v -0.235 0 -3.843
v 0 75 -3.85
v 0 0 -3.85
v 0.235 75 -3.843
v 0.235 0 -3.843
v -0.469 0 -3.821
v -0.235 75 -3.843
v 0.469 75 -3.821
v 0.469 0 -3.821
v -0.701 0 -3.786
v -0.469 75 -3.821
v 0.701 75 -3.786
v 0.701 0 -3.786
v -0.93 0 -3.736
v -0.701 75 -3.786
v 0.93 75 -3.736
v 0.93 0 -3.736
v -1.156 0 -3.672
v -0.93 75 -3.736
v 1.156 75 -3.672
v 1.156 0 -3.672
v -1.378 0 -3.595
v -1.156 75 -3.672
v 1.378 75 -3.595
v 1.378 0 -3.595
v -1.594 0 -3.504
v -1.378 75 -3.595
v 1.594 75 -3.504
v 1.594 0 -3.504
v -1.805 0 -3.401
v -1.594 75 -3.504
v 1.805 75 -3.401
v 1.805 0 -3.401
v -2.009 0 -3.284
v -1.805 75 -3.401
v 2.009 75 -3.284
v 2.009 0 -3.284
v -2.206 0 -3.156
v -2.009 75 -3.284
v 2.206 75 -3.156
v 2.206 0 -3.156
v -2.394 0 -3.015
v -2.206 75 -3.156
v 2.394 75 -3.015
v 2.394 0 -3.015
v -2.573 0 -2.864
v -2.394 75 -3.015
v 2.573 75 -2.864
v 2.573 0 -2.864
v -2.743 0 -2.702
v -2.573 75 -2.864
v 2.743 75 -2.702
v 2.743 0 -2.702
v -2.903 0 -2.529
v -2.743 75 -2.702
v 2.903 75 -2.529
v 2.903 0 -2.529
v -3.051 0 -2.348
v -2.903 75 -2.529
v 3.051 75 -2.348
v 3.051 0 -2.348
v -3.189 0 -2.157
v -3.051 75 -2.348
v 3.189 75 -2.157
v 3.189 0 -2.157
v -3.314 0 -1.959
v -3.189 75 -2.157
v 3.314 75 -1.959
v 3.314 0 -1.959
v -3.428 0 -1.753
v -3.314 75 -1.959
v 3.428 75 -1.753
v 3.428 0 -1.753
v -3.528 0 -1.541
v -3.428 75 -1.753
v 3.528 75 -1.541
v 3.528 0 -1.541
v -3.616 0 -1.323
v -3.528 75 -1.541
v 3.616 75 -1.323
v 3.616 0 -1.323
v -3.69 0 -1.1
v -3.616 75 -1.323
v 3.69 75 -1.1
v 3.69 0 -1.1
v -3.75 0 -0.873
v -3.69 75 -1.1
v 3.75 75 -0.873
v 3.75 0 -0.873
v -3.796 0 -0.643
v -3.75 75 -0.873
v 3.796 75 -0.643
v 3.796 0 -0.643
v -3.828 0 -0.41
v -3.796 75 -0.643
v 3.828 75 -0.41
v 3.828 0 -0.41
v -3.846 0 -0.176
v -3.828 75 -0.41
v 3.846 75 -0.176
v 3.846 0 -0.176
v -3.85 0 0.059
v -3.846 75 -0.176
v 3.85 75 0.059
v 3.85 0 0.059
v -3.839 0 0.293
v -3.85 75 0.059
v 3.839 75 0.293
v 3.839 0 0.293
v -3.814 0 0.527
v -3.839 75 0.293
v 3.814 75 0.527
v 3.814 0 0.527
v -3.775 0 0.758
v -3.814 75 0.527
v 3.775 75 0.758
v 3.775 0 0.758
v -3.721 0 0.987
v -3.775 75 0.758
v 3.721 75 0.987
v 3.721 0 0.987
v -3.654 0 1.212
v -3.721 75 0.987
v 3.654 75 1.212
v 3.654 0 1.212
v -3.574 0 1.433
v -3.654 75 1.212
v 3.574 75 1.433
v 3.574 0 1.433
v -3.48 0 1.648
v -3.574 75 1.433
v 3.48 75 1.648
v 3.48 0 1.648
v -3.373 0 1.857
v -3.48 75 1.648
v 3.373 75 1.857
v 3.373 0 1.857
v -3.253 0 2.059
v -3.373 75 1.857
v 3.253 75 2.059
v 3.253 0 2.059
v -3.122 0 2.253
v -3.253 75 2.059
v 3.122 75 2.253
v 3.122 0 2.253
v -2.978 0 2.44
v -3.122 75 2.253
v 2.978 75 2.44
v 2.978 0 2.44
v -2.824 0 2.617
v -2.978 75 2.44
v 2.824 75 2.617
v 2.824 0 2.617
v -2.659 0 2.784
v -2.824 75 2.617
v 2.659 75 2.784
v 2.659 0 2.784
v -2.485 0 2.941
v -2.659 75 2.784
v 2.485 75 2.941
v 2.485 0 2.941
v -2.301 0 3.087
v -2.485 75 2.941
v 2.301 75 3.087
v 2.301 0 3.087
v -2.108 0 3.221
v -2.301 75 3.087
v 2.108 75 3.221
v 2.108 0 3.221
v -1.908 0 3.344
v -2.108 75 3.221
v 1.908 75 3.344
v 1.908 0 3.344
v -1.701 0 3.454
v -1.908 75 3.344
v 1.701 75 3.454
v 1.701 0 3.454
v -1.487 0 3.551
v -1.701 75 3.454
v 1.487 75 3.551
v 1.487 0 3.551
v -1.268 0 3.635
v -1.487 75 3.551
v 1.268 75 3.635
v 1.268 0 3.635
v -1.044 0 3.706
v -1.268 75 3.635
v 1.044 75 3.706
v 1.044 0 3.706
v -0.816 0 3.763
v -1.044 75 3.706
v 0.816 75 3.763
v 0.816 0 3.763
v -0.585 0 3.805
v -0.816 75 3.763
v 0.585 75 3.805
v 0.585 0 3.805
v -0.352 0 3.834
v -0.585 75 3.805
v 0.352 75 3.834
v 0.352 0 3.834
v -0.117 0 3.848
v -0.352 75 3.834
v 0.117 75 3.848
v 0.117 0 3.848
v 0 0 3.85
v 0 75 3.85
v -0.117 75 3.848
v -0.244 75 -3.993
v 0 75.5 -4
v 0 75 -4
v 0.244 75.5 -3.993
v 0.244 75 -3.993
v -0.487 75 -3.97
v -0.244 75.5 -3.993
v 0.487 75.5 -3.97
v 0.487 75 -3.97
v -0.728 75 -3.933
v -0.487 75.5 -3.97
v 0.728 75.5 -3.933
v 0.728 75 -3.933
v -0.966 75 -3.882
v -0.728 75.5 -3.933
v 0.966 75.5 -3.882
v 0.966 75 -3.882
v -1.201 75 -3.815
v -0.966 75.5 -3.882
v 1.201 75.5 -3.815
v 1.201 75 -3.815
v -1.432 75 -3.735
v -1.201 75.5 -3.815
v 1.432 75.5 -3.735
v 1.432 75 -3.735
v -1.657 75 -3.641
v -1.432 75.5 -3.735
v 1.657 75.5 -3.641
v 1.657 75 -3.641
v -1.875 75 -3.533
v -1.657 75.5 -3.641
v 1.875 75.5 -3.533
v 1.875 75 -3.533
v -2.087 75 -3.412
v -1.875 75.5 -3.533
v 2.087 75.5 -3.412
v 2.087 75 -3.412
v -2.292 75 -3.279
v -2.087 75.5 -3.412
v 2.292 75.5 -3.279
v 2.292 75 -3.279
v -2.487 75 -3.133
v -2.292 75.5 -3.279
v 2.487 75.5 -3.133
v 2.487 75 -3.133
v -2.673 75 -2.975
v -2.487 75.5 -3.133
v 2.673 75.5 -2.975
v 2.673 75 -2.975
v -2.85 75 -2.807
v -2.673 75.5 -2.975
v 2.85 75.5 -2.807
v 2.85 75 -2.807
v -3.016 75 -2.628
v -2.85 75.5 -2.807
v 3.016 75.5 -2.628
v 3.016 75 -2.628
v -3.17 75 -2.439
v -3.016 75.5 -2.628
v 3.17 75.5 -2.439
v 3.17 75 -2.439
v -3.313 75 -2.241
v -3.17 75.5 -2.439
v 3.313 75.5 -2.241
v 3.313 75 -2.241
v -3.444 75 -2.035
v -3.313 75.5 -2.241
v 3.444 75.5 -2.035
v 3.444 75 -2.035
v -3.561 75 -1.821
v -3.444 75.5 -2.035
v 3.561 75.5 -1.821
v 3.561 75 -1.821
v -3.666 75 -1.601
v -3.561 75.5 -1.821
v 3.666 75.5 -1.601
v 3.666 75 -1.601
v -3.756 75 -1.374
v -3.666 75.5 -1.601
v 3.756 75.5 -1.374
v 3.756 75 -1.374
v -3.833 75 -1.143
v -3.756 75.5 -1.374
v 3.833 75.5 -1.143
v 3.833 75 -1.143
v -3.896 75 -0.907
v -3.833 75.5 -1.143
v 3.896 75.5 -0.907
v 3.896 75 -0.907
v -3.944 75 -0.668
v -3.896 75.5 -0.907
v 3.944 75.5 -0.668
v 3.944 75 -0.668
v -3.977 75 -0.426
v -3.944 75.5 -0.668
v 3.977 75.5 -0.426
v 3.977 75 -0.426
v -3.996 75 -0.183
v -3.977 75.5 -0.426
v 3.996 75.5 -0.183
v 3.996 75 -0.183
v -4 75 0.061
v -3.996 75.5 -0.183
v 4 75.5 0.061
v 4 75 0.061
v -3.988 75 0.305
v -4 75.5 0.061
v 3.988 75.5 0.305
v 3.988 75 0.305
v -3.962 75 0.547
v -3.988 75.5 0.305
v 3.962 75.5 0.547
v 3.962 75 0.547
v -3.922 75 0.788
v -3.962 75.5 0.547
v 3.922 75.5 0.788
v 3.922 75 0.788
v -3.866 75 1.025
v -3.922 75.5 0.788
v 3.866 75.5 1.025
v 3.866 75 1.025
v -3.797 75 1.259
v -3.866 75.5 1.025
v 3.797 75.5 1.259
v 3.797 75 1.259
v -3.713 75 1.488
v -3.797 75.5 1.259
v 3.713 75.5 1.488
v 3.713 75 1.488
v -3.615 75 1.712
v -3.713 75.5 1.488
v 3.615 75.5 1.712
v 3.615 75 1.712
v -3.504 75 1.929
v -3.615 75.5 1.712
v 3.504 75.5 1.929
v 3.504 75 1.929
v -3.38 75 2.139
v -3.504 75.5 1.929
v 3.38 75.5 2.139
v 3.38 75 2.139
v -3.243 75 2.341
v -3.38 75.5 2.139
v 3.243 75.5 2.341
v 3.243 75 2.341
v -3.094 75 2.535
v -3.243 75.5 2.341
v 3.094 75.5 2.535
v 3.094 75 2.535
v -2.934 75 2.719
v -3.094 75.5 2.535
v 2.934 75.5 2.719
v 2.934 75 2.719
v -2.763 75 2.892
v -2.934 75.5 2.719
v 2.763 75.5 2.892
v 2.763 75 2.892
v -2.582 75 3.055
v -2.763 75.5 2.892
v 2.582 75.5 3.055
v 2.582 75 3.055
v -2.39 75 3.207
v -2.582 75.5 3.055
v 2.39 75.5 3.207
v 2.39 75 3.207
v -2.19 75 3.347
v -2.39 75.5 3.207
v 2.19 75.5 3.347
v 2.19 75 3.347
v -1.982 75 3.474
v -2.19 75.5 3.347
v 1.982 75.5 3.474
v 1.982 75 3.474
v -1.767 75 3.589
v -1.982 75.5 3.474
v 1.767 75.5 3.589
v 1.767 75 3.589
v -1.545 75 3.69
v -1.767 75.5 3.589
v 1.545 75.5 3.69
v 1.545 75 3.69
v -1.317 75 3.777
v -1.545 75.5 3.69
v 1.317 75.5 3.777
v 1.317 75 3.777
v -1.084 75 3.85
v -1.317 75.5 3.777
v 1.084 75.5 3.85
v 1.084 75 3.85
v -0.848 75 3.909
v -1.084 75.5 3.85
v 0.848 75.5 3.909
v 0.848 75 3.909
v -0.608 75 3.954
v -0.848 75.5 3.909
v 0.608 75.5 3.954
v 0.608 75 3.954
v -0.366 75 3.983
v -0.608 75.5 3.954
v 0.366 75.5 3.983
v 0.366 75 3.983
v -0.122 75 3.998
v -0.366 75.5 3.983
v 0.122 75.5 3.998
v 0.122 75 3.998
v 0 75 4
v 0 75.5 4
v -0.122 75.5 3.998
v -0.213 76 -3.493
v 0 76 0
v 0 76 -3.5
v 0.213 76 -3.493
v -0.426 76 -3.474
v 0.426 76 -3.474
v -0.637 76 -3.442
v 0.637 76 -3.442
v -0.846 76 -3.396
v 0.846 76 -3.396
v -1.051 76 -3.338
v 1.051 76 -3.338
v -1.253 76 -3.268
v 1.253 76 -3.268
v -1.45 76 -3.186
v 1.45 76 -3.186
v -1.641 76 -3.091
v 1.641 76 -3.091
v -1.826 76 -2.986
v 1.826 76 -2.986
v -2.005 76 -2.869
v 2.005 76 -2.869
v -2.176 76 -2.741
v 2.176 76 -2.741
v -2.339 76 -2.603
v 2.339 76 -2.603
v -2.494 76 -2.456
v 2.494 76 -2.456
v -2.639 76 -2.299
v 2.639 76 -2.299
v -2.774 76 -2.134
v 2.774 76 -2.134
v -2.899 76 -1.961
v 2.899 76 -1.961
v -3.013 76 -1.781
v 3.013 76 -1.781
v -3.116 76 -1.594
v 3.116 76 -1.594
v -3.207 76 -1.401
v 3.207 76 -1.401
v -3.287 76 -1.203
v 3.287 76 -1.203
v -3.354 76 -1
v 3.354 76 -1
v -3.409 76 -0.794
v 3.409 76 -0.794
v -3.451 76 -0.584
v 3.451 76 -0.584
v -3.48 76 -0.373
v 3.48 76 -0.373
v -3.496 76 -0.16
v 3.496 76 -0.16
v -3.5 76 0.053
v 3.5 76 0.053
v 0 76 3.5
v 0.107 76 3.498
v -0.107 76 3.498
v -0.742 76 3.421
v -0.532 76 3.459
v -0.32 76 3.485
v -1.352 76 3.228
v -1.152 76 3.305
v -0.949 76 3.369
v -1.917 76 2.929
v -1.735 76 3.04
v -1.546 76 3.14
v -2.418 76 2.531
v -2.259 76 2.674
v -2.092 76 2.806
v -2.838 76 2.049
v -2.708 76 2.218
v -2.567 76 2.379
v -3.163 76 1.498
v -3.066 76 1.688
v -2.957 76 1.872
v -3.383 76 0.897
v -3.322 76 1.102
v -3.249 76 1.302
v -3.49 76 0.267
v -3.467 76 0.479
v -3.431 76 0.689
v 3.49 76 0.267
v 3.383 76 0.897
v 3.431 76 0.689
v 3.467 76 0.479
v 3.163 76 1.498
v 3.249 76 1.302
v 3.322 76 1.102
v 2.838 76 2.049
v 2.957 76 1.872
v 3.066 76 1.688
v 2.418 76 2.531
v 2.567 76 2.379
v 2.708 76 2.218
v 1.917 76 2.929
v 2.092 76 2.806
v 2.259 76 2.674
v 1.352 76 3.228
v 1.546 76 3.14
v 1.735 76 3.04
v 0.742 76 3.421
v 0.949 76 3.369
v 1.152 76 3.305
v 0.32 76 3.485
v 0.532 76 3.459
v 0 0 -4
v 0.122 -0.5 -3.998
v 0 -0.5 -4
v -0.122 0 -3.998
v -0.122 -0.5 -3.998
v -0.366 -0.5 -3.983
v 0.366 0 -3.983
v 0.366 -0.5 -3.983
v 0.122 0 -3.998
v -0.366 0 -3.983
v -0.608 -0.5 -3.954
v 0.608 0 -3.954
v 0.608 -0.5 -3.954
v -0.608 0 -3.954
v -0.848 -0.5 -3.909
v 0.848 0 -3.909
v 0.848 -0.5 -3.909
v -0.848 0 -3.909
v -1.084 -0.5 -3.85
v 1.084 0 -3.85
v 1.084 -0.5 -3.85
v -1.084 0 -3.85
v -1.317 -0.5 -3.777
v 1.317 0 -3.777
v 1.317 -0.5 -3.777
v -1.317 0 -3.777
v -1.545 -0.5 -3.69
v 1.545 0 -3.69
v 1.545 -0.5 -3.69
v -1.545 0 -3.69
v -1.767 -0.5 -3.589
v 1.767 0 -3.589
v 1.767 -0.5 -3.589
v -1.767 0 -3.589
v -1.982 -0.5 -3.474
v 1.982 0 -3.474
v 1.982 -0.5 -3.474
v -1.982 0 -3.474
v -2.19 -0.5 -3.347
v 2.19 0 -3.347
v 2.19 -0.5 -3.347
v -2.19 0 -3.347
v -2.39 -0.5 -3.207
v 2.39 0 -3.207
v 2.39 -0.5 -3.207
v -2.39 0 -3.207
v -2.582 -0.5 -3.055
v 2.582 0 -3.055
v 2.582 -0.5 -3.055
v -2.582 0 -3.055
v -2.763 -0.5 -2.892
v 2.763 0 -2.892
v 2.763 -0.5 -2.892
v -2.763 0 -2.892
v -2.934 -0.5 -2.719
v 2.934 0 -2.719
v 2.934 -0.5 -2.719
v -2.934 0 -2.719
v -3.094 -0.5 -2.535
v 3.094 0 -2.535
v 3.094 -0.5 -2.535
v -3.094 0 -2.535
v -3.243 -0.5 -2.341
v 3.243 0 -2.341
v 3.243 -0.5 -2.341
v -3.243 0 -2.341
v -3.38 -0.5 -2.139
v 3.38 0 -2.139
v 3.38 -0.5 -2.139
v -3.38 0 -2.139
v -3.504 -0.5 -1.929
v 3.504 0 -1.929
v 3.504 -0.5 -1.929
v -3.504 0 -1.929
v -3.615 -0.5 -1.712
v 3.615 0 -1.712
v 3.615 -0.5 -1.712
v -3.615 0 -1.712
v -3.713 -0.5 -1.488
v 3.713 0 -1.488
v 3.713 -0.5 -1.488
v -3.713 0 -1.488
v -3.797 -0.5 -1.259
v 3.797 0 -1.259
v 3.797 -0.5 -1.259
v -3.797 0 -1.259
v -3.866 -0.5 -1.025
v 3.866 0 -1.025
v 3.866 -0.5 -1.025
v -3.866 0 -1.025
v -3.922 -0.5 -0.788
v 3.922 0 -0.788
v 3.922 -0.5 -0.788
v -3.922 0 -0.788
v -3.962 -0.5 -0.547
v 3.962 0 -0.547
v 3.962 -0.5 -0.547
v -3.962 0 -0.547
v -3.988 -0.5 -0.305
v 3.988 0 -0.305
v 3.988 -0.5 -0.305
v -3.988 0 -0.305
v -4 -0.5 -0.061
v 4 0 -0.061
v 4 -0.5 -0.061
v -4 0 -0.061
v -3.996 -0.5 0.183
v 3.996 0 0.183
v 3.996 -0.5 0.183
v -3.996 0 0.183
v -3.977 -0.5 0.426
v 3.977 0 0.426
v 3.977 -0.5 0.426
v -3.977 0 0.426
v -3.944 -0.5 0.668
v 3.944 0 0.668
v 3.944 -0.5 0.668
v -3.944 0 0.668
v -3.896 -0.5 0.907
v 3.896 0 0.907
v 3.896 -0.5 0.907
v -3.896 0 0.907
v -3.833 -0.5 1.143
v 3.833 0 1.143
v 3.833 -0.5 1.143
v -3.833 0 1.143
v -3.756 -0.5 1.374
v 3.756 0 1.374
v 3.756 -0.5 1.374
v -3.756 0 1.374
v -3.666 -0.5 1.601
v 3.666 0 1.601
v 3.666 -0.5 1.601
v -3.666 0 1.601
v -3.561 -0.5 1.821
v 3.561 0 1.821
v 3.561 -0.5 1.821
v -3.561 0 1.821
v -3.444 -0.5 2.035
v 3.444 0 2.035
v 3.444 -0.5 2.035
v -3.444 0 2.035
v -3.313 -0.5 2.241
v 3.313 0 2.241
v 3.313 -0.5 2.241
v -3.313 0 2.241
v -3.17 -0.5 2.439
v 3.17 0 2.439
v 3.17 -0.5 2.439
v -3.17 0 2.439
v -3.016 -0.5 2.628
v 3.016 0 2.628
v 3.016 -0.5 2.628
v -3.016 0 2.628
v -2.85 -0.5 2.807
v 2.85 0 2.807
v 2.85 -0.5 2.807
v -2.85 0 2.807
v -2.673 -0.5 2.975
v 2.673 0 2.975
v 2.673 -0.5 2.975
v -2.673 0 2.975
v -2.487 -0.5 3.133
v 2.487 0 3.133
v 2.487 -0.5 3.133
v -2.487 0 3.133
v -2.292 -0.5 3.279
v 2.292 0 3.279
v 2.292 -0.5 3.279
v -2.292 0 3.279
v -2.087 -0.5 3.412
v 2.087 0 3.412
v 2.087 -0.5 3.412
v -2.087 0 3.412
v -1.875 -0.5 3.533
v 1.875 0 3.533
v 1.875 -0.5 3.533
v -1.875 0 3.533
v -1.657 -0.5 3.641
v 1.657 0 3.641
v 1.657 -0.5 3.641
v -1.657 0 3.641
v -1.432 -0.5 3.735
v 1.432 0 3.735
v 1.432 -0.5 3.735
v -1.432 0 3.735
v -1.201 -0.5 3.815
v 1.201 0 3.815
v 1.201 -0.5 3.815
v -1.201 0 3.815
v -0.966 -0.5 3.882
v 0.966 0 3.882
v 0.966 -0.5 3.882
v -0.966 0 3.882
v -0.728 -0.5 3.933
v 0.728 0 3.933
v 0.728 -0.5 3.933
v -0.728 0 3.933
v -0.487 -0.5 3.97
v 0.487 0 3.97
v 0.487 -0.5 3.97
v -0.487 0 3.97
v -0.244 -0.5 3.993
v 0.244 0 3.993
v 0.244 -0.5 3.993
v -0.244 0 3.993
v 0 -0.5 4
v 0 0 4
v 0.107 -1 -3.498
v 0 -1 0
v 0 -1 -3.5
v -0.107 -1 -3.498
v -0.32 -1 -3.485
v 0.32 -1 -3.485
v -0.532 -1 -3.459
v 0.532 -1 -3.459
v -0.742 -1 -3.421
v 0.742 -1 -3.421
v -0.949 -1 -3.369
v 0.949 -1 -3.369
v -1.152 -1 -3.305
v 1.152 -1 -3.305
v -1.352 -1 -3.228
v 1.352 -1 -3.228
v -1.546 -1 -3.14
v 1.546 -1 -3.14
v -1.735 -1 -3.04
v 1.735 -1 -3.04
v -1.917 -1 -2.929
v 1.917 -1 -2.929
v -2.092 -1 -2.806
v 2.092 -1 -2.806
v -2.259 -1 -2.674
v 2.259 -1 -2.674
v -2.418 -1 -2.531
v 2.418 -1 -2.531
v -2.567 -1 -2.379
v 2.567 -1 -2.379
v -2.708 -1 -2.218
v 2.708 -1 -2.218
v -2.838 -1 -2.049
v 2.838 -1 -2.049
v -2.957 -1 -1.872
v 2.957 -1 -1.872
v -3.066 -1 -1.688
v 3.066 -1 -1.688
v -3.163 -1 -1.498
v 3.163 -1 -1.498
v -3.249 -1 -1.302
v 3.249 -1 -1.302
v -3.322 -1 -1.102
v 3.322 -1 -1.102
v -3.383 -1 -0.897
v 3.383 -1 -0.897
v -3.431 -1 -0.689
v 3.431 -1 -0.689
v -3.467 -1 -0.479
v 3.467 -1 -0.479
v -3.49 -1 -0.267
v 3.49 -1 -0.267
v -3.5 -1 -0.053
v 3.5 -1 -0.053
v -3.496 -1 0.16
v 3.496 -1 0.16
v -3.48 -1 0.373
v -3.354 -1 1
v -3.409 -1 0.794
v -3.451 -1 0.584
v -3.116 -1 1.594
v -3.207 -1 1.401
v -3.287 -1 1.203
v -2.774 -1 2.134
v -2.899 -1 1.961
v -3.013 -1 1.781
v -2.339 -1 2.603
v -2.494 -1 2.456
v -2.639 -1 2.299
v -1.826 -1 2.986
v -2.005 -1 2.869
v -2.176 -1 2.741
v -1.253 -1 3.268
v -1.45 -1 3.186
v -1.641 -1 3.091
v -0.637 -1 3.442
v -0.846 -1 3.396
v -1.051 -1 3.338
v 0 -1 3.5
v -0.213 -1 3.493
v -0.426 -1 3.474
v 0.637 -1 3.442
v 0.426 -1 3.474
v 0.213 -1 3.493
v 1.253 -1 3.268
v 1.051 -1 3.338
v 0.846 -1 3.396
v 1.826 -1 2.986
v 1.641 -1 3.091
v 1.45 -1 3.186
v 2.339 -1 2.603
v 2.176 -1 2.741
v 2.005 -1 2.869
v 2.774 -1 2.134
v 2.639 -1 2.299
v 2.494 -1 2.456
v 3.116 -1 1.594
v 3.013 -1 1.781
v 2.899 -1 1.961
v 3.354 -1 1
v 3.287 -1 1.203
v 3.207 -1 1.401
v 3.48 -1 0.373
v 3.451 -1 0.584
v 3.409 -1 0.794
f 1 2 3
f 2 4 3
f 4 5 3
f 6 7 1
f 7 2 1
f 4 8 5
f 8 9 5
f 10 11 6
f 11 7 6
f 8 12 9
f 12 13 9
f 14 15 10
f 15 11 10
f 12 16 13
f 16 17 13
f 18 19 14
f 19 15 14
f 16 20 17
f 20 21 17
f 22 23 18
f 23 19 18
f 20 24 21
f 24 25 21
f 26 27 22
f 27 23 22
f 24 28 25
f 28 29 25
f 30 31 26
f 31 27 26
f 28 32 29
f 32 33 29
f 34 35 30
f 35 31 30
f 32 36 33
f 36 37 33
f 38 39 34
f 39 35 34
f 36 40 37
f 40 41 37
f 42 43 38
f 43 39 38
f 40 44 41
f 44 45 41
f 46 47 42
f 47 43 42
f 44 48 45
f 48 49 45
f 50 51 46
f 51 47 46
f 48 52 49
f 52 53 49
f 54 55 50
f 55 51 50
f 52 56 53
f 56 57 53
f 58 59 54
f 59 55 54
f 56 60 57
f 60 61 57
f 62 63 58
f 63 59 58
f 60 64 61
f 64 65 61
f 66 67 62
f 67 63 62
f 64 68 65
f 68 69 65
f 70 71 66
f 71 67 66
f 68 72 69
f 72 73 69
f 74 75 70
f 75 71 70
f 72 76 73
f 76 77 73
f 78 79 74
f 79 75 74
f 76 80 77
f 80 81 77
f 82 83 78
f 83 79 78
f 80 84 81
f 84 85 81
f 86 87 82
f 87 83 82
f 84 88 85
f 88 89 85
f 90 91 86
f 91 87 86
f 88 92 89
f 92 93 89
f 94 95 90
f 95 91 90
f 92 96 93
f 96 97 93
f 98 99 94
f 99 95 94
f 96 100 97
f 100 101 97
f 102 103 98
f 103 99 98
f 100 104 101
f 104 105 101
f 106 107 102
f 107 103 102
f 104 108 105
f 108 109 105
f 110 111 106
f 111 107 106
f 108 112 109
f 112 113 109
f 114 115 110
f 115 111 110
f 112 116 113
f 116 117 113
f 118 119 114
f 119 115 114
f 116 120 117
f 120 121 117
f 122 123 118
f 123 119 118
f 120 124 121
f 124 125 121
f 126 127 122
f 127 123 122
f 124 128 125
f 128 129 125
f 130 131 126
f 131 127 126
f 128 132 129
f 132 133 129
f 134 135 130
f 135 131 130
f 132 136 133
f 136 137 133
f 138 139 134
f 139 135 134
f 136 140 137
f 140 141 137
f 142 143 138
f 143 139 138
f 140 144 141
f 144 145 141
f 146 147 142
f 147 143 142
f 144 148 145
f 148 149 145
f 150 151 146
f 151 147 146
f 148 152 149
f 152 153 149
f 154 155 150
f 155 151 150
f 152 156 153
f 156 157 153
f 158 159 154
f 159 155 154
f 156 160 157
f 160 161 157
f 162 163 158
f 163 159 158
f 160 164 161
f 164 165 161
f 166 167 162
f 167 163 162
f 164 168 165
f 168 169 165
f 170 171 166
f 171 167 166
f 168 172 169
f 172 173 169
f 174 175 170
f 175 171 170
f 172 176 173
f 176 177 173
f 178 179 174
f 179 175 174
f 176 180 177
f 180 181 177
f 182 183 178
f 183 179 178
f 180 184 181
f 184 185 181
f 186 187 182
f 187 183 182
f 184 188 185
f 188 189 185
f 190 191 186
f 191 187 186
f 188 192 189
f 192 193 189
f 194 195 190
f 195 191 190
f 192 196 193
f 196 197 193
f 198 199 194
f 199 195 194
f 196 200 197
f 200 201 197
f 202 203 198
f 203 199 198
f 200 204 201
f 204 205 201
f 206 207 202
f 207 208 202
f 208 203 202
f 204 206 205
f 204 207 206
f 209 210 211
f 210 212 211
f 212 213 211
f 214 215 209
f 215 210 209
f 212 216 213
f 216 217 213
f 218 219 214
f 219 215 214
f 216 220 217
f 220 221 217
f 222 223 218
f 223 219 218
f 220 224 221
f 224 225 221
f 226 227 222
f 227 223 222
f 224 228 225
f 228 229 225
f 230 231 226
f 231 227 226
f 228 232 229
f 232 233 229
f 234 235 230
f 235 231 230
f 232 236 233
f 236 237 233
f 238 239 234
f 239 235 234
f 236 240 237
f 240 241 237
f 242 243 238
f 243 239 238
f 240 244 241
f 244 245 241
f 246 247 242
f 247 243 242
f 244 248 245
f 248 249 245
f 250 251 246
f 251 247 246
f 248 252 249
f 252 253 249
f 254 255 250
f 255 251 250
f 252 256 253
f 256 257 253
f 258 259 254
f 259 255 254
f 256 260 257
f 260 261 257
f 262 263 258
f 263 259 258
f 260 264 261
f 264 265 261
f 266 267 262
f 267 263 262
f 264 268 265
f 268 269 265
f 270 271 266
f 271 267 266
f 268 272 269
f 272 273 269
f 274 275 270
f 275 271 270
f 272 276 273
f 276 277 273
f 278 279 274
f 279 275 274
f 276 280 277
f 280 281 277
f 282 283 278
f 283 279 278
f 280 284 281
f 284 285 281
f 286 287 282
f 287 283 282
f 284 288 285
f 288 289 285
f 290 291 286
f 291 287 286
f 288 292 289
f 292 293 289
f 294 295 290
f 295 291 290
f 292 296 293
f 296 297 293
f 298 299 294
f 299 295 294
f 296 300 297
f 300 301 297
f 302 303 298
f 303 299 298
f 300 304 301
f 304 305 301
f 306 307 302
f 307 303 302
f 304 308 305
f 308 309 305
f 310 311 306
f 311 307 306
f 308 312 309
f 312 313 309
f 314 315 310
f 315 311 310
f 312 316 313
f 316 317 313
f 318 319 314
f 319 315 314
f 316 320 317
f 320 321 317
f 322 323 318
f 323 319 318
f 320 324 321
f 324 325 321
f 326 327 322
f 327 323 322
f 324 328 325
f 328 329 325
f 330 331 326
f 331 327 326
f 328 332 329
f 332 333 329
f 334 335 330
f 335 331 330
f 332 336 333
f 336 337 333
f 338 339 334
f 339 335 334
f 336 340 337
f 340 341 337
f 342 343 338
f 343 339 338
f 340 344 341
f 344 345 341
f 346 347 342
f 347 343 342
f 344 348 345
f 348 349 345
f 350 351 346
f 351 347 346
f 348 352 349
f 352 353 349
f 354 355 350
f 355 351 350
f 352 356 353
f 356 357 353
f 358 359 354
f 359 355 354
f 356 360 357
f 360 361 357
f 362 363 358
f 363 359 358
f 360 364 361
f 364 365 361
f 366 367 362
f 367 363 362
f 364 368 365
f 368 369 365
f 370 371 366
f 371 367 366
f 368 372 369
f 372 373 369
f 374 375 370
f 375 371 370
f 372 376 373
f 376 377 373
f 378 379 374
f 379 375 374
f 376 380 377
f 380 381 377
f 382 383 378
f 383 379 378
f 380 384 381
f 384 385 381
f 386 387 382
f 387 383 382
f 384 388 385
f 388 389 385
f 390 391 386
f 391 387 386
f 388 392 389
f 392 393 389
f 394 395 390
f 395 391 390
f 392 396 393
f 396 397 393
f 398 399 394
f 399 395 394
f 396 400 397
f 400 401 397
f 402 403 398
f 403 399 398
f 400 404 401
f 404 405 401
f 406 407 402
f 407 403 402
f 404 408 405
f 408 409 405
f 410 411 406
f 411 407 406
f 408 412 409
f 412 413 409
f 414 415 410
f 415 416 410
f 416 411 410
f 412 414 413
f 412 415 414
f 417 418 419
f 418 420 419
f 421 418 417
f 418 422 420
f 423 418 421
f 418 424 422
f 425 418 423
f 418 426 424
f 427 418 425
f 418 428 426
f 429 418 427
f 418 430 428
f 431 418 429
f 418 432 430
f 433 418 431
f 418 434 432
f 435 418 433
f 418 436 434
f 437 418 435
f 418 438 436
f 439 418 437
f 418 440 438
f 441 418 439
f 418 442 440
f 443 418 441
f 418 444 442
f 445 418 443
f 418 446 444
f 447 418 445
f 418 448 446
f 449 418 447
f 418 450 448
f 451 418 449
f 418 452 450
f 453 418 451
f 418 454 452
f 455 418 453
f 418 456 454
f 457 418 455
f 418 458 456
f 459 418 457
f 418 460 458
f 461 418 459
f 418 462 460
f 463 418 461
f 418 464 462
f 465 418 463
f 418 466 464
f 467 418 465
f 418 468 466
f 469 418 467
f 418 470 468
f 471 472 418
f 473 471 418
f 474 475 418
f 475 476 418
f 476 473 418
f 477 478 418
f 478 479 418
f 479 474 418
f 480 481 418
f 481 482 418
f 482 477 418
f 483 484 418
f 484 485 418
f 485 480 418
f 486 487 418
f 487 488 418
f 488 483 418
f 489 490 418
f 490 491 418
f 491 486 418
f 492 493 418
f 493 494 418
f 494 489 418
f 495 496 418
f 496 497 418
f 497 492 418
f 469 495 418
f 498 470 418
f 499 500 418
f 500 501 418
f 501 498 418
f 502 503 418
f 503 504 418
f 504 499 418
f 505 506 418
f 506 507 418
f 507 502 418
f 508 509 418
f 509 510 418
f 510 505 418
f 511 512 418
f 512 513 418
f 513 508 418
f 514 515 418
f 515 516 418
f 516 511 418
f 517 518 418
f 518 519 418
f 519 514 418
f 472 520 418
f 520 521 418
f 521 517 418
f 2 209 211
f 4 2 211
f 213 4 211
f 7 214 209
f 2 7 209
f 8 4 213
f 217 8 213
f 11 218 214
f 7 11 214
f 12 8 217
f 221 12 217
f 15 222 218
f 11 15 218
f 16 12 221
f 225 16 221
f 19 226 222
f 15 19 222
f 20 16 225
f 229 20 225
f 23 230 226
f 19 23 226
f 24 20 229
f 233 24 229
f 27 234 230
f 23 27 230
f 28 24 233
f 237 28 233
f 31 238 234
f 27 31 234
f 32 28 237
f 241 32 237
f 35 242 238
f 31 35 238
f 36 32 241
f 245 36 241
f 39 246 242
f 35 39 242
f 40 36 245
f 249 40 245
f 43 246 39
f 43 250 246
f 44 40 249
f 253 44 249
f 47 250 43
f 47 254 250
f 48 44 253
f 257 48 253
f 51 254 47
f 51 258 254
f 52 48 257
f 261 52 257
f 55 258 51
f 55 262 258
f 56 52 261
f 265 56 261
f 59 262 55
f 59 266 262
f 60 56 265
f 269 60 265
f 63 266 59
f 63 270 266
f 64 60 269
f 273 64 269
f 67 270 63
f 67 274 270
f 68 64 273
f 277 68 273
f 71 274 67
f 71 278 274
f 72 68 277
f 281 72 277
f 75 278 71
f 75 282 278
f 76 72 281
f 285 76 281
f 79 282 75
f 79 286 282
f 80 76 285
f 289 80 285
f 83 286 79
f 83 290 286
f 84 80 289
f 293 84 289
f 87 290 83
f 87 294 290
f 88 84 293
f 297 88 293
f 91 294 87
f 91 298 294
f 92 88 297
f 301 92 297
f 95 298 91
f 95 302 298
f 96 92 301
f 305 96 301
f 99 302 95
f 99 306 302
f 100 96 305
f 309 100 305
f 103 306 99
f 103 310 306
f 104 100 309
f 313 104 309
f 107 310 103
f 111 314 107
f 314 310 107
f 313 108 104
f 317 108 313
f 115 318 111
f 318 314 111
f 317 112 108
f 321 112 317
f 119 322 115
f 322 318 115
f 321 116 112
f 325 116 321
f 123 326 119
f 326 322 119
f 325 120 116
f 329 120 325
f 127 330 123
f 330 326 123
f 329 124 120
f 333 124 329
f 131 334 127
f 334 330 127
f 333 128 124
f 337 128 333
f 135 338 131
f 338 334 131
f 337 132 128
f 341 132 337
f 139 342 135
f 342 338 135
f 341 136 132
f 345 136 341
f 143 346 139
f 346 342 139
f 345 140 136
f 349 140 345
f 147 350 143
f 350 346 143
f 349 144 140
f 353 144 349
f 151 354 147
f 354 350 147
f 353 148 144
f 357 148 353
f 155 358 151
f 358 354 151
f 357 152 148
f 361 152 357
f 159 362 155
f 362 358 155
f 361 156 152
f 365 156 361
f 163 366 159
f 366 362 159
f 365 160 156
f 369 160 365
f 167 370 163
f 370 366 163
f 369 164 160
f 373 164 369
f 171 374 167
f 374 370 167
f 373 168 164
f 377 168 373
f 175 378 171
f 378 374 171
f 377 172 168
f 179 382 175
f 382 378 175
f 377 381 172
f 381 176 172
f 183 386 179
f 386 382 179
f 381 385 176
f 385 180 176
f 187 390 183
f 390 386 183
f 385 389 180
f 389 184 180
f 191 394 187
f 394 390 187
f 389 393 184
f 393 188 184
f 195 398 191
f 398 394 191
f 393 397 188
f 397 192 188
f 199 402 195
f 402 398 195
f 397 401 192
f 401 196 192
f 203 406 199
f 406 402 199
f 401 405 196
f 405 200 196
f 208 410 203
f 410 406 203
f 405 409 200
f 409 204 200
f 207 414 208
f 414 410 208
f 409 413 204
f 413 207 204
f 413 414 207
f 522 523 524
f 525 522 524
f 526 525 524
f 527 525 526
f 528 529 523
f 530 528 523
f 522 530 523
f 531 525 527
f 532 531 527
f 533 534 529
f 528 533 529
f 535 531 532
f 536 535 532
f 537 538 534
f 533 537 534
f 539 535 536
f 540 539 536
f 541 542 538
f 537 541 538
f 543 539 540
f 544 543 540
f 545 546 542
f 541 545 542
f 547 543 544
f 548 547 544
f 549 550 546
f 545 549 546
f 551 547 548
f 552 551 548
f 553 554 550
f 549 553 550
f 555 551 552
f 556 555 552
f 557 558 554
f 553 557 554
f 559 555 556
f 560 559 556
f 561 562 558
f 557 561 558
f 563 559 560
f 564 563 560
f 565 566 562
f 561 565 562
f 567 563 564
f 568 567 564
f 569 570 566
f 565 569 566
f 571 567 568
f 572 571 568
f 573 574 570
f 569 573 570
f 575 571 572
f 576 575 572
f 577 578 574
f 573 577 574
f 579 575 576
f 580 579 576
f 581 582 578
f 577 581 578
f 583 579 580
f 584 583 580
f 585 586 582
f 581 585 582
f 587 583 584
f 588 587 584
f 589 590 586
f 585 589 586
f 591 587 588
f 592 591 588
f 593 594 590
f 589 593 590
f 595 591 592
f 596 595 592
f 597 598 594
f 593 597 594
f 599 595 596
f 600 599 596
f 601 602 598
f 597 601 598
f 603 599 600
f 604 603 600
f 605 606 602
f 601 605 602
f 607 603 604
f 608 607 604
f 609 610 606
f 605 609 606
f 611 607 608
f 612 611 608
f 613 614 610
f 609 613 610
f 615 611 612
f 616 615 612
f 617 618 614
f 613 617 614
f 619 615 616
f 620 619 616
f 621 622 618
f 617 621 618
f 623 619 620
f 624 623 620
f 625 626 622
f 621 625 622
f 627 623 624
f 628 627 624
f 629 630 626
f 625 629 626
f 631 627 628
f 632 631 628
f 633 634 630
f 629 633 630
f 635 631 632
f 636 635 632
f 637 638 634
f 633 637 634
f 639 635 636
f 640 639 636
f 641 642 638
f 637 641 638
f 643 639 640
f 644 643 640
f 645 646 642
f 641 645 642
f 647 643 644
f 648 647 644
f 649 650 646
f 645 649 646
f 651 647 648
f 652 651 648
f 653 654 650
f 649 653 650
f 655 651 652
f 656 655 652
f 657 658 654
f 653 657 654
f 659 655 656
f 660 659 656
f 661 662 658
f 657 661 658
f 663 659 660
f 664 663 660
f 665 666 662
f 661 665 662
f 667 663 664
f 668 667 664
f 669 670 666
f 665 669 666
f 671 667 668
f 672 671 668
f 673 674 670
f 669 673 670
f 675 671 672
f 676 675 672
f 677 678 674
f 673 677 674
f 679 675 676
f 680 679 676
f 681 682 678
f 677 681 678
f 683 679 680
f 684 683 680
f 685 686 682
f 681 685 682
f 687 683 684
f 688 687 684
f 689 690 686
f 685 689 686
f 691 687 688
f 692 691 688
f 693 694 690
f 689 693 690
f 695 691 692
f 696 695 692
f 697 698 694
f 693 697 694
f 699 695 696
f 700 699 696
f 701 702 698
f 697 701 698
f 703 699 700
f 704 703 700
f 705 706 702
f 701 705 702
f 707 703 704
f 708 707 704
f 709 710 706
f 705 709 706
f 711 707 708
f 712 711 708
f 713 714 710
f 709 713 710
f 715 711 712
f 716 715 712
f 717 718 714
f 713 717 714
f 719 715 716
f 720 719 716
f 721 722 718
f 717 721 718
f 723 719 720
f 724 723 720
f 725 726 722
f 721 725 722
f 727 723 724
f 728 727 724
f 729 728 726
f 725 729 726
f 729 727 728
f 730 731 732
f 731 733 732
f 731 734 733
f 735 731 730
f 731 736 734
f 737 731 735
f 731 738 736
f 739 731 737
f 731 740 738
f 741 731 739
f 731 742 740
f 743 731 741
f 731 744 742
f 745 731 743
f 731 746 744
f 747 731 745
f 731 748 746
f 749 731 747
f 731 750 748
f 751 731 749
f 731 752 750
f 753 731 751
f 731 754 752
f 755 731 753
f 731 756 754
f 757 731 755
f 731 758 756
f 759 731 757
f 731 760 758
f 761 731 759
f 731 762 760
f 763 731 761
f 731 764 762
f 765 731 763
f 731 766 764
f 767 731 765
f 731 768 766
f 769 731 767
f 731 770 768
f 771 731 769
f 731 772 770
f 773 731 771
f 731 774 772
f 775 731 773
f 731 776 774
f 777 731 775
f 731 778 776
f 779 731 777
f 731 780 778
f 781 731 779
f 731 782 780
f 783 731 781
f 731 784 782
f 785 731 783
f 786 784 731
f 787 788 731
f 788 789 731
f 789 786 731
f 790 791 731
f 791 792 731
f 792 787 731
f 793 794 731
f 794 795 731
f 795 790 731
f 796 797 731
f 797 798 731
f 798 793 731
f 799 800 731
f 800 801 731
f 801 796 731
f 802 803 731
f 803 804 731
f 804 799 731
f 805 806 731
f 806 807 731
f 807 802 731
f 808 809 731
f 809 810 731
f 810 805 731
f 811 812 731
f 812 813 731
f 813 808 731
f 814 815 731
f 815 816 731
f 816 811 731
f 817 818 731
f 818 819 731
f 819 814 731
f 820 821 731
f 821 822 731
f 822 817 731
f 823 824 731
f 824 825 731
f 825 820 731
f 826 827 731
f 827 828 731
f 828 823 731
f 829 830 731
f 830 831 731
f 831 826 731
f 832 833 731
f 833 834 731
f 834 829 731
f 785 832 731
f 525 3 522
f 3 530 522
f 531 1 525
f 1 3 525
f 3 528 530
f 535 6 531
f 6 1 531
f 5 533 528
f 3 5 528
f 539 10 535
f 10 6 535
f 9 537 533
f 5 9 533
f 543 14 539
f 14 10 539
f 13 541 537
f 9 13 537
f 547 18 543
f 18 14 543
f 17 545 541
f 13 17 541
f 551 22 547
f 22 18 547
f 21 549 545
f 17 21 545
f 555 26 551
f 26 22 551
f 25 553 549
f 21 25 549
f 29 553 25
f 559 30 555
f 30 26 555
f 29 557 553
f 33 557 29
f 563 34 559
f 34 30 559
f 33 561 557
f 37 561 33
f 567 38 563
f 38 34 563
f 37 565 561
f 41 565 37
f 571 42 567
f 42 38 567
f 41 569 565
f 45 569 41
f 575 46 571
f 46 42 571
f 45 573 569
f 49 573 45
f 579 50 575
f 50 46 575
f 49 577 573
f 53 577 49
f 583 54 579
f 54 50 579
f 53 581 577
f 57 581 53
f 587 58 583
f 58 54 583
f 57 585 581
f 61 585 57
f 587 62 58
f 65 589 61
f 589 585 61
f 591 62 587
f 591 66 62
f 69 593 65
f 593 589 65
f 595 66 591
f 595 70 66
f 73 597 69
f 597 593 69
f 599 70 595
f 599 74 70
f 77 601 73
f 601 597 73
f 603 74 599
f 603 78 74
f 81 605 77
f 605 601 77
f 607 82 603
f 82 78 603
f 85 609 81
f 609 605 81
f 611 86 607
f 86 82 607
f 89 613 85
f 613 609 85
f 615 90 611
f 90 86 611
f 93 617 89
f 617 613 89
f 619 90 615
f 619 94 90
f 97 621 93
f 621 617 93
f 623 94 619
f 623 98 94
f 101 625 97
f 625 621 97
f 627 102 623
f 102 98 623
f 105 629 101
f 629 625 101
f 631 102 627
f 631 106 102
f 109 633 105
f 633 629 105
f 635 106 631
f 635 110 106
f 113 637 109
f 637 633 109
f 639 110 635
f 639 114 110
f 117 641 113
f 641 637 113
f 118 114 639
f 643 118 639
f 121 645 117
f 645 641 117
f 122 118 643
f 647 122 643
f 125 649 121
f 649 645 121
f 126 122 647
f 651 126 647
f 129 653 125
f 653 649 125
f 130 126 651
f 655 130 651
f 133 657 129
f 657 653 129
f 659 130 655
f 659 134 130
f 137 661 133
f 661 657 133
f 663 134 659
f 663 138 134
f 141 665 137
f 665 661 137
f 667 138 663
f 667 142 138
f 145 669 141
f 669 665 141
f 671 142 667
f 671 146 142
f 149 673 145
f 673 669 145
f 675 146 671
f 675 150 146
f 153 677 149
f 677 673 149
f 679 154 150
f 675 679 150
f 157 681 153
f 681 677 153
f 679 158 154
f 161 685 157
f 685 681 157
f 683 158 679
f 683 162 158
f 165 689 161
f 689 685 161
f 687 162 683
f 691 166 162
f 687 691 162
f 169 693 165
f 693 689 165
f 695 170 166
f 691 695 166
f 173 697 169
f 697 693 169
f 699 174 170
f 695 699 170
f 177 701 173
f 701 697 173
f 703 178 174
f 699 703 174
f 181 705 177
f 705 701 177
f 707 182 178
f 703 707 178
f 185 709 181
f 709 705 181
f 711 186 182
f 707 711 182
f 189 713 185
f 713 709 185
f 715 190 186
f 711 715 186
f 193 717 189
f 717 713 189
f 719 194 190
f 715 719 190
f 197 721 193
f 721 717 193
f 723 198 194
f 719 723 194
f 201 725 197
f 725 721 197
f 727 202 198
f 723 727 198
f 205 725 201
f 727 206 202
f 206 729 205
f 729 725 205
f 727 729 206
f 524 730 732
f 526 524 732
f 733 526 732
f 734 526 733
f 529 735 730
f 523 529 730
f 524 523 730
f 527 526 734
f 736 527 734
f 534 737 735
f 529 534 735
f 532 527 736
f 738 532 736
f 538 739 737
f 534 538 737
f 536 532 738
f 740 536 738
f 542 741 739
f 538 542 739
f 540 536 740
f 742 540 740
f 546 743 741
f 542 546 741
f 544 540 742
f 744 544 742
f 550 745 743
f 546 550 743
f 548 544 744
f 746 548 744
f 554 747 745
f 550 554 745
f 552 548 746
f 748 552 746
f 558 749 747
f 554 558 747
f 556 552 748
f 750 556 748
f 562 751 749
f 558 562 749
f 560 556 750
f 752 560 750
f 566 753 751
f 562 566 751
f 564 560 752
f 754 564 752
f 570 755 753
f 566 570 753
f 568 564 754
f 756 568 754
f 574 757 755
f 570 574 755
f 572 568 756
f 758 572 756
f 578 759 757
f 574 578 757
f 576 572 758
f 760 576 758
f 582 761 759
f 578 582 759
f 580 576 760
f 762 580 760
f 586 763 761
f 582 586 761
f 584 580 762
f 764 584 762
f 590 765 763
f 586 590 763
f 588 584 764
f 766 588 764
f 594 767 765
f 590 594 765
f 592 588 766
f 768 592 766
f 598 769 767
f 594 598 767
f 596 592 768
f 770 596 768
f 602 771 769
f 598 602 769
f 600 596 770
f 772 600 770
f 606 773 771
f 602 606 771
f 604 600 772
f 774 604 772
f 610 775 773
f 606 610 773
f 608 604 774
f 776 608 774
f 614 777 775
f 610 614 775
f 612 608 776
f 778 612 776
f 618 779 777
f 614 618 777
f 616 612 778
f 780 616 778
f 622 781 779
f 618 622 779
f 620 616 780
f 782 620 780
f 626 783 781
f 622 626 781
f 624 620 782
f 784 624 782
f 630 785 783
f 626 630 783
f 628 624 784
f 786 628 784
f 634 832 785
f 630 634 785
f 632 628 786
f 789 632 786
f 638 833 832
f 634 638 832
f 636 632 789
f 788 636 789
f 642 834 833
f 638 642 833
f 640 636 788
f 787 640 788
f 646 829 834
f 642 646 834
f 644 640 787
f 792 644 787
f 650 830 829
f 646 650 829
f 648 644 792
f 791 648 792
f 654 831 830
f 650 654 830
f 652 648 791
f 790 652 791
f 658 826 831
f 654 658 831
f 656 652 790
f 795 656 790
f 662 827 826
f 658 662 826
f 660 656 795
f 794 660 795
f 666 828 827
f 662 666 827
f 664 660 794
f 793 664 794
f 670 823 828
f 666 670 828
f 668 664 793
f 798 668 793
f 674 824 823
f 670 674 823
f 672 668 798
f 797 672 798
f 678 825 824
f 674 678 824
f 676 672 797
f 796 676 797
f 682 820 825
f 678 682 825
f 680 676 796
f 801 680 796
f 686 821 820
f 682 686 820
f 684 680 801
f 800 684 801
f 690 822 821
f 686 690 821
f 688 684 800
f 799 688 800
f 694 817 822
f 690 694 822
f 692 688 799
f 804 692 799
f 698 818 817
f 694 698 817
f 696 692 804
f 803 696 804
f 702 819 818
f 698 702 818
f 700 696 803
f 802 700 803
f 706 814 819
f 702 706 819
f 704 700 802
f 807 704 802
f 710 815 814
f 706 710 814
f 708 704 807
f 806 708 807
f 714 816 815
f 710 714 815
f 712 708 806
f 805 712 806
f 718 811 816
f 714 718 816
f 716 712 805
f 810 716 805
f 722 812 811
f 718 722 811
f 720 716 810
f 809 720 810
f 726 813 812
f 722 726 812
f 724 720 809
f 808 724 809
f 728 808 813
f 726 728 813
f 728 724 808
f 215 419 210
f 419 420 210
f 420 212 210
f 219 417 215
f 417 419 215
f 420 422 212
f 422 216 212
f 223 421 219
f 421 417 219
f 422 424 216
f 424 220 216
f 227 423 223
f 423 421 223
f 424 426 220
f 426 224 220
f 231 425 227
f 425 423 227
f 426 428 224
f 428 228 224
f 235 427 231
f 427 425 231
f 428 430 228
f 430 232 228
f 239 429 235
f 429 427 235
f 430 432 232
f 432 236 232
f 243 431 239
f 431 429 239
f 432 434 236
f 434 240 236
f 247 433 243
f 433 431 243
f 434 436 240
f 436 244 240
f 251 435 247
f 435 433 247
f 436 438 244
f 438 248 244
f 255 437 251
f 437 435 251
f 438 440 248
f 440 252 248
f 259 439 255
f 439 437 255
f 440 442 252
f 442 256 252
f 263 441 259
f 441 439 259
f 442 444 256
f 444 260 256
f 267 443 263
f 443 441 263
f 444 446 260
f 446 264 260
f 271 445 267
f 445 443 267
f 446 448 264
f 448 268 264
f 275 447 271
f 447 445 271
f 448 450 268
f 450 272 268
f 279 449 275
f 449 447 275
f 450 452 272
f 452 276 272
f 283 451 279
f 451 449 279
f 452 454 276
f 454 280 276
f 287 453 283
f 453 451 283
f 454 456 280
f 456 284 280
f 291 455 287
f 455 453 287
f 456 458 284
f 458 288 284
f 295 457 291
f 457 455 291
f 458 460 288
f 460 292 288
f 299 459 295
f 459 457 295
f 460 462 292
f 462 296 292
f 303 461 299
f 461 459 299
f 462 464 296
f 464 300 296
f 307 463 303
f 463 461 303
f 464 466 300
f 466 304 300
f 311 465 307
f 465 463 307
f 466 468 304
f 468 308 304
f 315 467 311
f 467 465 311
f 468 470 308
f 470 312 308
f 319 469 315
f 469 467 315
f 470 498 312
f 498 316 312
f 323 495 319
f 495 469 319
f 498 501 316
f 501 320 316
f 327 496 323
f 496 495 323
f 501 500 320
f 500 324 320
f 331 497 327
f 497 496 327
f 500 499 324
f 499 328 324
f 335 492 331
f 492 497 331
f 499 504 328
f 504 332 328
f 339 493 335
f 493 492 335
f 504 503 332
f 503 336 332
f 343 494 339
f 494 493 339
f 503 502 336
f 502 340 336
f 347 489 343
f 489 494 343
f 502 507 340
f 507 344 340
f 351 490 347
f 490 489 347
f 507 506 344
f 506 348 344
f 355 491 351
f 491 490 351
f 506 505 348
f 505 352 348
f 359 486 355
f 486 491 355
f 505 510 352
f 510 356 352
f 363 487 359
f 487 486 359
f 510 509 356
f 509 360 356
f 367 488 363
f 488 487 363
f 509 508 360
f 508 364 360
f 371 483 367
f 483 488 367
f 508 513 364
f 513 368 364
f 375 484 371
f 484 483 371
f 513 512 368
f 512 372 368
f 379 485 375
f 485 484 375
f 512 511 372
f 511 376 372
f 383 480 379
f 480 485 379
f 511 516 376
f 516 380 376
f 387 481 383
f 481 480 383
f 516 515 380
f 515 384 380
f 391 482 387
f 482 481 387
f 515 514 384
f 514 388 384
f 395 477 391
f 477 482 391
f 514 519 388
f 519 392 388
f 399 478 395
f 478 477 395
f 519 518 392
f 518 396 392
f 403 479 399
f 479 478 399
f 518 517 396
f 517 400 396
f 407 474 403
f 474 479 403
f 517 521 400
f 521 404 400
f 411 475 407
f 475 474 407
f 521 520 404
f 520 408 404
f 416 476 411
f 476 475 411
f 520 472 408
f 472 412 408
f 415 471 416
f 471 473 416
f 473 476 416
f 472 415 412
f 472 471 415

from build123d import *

# Parameters (mm, degrees)
SKETCH_1_R      = 3.85
EXTRUDE_1_DEPTH = 75
SKETCH_3_R      = 4
EXTRUDE_2_DEPTH = 1
EXTRUDE_START   = 1
SKETCH_4_R      = 4
EXTRUDE_3_DEPTH = 1
CHAMFER_1_SIZE  = 0.5


with BuildPart() as part:
    # 草图1 → 凸台-拉伸1 (new body)
    with BuildSketch(Plane(origin=(0, 0, 0), x_dir=(1, 0, 0), z_dir=(0, 1, 0))):
        with Locations(Location((0, 0, 0), (0, 0, 270))):
            Circle(SKETCH_1_R)
    extrude(amount=EXTRUDE_1_DEPTH)

    # 草图3 → 凸台-拉伸2 (add)
    with BuildSketch(Plane(origin=(0, 75, 0), x_dir=(1, 0, 0), z_dir=(0, 1, 0))):
        with Locations(Location((0, 0, 0), (0, 0, 270))):
            Circle(SKETCH_3_R)
    extrude(amount=EXTRUDE_2_DEPTH)

    # 草图4 → 凸台-拉伸3 (add)
    with BuildSketch(Plane.XZ.offset(EXTRUDE_START)):
        with Locations(Location((0, 0, 0), (0, 0, 90))):
            Circle(SKETCH_4_R)
    extrude(amount=-EXTRUDE_3_DEPTH)

    # 倒角1
    chamfer_1_edges = [part.edges().sort_by_distance(p)[0] for p in [
        (0, -1, -4),
        (0, 76, -4),
    ]]
    chamfer(chamfer_1_edges, length=CHAMFER_1_SIZE)


solid = part.part
